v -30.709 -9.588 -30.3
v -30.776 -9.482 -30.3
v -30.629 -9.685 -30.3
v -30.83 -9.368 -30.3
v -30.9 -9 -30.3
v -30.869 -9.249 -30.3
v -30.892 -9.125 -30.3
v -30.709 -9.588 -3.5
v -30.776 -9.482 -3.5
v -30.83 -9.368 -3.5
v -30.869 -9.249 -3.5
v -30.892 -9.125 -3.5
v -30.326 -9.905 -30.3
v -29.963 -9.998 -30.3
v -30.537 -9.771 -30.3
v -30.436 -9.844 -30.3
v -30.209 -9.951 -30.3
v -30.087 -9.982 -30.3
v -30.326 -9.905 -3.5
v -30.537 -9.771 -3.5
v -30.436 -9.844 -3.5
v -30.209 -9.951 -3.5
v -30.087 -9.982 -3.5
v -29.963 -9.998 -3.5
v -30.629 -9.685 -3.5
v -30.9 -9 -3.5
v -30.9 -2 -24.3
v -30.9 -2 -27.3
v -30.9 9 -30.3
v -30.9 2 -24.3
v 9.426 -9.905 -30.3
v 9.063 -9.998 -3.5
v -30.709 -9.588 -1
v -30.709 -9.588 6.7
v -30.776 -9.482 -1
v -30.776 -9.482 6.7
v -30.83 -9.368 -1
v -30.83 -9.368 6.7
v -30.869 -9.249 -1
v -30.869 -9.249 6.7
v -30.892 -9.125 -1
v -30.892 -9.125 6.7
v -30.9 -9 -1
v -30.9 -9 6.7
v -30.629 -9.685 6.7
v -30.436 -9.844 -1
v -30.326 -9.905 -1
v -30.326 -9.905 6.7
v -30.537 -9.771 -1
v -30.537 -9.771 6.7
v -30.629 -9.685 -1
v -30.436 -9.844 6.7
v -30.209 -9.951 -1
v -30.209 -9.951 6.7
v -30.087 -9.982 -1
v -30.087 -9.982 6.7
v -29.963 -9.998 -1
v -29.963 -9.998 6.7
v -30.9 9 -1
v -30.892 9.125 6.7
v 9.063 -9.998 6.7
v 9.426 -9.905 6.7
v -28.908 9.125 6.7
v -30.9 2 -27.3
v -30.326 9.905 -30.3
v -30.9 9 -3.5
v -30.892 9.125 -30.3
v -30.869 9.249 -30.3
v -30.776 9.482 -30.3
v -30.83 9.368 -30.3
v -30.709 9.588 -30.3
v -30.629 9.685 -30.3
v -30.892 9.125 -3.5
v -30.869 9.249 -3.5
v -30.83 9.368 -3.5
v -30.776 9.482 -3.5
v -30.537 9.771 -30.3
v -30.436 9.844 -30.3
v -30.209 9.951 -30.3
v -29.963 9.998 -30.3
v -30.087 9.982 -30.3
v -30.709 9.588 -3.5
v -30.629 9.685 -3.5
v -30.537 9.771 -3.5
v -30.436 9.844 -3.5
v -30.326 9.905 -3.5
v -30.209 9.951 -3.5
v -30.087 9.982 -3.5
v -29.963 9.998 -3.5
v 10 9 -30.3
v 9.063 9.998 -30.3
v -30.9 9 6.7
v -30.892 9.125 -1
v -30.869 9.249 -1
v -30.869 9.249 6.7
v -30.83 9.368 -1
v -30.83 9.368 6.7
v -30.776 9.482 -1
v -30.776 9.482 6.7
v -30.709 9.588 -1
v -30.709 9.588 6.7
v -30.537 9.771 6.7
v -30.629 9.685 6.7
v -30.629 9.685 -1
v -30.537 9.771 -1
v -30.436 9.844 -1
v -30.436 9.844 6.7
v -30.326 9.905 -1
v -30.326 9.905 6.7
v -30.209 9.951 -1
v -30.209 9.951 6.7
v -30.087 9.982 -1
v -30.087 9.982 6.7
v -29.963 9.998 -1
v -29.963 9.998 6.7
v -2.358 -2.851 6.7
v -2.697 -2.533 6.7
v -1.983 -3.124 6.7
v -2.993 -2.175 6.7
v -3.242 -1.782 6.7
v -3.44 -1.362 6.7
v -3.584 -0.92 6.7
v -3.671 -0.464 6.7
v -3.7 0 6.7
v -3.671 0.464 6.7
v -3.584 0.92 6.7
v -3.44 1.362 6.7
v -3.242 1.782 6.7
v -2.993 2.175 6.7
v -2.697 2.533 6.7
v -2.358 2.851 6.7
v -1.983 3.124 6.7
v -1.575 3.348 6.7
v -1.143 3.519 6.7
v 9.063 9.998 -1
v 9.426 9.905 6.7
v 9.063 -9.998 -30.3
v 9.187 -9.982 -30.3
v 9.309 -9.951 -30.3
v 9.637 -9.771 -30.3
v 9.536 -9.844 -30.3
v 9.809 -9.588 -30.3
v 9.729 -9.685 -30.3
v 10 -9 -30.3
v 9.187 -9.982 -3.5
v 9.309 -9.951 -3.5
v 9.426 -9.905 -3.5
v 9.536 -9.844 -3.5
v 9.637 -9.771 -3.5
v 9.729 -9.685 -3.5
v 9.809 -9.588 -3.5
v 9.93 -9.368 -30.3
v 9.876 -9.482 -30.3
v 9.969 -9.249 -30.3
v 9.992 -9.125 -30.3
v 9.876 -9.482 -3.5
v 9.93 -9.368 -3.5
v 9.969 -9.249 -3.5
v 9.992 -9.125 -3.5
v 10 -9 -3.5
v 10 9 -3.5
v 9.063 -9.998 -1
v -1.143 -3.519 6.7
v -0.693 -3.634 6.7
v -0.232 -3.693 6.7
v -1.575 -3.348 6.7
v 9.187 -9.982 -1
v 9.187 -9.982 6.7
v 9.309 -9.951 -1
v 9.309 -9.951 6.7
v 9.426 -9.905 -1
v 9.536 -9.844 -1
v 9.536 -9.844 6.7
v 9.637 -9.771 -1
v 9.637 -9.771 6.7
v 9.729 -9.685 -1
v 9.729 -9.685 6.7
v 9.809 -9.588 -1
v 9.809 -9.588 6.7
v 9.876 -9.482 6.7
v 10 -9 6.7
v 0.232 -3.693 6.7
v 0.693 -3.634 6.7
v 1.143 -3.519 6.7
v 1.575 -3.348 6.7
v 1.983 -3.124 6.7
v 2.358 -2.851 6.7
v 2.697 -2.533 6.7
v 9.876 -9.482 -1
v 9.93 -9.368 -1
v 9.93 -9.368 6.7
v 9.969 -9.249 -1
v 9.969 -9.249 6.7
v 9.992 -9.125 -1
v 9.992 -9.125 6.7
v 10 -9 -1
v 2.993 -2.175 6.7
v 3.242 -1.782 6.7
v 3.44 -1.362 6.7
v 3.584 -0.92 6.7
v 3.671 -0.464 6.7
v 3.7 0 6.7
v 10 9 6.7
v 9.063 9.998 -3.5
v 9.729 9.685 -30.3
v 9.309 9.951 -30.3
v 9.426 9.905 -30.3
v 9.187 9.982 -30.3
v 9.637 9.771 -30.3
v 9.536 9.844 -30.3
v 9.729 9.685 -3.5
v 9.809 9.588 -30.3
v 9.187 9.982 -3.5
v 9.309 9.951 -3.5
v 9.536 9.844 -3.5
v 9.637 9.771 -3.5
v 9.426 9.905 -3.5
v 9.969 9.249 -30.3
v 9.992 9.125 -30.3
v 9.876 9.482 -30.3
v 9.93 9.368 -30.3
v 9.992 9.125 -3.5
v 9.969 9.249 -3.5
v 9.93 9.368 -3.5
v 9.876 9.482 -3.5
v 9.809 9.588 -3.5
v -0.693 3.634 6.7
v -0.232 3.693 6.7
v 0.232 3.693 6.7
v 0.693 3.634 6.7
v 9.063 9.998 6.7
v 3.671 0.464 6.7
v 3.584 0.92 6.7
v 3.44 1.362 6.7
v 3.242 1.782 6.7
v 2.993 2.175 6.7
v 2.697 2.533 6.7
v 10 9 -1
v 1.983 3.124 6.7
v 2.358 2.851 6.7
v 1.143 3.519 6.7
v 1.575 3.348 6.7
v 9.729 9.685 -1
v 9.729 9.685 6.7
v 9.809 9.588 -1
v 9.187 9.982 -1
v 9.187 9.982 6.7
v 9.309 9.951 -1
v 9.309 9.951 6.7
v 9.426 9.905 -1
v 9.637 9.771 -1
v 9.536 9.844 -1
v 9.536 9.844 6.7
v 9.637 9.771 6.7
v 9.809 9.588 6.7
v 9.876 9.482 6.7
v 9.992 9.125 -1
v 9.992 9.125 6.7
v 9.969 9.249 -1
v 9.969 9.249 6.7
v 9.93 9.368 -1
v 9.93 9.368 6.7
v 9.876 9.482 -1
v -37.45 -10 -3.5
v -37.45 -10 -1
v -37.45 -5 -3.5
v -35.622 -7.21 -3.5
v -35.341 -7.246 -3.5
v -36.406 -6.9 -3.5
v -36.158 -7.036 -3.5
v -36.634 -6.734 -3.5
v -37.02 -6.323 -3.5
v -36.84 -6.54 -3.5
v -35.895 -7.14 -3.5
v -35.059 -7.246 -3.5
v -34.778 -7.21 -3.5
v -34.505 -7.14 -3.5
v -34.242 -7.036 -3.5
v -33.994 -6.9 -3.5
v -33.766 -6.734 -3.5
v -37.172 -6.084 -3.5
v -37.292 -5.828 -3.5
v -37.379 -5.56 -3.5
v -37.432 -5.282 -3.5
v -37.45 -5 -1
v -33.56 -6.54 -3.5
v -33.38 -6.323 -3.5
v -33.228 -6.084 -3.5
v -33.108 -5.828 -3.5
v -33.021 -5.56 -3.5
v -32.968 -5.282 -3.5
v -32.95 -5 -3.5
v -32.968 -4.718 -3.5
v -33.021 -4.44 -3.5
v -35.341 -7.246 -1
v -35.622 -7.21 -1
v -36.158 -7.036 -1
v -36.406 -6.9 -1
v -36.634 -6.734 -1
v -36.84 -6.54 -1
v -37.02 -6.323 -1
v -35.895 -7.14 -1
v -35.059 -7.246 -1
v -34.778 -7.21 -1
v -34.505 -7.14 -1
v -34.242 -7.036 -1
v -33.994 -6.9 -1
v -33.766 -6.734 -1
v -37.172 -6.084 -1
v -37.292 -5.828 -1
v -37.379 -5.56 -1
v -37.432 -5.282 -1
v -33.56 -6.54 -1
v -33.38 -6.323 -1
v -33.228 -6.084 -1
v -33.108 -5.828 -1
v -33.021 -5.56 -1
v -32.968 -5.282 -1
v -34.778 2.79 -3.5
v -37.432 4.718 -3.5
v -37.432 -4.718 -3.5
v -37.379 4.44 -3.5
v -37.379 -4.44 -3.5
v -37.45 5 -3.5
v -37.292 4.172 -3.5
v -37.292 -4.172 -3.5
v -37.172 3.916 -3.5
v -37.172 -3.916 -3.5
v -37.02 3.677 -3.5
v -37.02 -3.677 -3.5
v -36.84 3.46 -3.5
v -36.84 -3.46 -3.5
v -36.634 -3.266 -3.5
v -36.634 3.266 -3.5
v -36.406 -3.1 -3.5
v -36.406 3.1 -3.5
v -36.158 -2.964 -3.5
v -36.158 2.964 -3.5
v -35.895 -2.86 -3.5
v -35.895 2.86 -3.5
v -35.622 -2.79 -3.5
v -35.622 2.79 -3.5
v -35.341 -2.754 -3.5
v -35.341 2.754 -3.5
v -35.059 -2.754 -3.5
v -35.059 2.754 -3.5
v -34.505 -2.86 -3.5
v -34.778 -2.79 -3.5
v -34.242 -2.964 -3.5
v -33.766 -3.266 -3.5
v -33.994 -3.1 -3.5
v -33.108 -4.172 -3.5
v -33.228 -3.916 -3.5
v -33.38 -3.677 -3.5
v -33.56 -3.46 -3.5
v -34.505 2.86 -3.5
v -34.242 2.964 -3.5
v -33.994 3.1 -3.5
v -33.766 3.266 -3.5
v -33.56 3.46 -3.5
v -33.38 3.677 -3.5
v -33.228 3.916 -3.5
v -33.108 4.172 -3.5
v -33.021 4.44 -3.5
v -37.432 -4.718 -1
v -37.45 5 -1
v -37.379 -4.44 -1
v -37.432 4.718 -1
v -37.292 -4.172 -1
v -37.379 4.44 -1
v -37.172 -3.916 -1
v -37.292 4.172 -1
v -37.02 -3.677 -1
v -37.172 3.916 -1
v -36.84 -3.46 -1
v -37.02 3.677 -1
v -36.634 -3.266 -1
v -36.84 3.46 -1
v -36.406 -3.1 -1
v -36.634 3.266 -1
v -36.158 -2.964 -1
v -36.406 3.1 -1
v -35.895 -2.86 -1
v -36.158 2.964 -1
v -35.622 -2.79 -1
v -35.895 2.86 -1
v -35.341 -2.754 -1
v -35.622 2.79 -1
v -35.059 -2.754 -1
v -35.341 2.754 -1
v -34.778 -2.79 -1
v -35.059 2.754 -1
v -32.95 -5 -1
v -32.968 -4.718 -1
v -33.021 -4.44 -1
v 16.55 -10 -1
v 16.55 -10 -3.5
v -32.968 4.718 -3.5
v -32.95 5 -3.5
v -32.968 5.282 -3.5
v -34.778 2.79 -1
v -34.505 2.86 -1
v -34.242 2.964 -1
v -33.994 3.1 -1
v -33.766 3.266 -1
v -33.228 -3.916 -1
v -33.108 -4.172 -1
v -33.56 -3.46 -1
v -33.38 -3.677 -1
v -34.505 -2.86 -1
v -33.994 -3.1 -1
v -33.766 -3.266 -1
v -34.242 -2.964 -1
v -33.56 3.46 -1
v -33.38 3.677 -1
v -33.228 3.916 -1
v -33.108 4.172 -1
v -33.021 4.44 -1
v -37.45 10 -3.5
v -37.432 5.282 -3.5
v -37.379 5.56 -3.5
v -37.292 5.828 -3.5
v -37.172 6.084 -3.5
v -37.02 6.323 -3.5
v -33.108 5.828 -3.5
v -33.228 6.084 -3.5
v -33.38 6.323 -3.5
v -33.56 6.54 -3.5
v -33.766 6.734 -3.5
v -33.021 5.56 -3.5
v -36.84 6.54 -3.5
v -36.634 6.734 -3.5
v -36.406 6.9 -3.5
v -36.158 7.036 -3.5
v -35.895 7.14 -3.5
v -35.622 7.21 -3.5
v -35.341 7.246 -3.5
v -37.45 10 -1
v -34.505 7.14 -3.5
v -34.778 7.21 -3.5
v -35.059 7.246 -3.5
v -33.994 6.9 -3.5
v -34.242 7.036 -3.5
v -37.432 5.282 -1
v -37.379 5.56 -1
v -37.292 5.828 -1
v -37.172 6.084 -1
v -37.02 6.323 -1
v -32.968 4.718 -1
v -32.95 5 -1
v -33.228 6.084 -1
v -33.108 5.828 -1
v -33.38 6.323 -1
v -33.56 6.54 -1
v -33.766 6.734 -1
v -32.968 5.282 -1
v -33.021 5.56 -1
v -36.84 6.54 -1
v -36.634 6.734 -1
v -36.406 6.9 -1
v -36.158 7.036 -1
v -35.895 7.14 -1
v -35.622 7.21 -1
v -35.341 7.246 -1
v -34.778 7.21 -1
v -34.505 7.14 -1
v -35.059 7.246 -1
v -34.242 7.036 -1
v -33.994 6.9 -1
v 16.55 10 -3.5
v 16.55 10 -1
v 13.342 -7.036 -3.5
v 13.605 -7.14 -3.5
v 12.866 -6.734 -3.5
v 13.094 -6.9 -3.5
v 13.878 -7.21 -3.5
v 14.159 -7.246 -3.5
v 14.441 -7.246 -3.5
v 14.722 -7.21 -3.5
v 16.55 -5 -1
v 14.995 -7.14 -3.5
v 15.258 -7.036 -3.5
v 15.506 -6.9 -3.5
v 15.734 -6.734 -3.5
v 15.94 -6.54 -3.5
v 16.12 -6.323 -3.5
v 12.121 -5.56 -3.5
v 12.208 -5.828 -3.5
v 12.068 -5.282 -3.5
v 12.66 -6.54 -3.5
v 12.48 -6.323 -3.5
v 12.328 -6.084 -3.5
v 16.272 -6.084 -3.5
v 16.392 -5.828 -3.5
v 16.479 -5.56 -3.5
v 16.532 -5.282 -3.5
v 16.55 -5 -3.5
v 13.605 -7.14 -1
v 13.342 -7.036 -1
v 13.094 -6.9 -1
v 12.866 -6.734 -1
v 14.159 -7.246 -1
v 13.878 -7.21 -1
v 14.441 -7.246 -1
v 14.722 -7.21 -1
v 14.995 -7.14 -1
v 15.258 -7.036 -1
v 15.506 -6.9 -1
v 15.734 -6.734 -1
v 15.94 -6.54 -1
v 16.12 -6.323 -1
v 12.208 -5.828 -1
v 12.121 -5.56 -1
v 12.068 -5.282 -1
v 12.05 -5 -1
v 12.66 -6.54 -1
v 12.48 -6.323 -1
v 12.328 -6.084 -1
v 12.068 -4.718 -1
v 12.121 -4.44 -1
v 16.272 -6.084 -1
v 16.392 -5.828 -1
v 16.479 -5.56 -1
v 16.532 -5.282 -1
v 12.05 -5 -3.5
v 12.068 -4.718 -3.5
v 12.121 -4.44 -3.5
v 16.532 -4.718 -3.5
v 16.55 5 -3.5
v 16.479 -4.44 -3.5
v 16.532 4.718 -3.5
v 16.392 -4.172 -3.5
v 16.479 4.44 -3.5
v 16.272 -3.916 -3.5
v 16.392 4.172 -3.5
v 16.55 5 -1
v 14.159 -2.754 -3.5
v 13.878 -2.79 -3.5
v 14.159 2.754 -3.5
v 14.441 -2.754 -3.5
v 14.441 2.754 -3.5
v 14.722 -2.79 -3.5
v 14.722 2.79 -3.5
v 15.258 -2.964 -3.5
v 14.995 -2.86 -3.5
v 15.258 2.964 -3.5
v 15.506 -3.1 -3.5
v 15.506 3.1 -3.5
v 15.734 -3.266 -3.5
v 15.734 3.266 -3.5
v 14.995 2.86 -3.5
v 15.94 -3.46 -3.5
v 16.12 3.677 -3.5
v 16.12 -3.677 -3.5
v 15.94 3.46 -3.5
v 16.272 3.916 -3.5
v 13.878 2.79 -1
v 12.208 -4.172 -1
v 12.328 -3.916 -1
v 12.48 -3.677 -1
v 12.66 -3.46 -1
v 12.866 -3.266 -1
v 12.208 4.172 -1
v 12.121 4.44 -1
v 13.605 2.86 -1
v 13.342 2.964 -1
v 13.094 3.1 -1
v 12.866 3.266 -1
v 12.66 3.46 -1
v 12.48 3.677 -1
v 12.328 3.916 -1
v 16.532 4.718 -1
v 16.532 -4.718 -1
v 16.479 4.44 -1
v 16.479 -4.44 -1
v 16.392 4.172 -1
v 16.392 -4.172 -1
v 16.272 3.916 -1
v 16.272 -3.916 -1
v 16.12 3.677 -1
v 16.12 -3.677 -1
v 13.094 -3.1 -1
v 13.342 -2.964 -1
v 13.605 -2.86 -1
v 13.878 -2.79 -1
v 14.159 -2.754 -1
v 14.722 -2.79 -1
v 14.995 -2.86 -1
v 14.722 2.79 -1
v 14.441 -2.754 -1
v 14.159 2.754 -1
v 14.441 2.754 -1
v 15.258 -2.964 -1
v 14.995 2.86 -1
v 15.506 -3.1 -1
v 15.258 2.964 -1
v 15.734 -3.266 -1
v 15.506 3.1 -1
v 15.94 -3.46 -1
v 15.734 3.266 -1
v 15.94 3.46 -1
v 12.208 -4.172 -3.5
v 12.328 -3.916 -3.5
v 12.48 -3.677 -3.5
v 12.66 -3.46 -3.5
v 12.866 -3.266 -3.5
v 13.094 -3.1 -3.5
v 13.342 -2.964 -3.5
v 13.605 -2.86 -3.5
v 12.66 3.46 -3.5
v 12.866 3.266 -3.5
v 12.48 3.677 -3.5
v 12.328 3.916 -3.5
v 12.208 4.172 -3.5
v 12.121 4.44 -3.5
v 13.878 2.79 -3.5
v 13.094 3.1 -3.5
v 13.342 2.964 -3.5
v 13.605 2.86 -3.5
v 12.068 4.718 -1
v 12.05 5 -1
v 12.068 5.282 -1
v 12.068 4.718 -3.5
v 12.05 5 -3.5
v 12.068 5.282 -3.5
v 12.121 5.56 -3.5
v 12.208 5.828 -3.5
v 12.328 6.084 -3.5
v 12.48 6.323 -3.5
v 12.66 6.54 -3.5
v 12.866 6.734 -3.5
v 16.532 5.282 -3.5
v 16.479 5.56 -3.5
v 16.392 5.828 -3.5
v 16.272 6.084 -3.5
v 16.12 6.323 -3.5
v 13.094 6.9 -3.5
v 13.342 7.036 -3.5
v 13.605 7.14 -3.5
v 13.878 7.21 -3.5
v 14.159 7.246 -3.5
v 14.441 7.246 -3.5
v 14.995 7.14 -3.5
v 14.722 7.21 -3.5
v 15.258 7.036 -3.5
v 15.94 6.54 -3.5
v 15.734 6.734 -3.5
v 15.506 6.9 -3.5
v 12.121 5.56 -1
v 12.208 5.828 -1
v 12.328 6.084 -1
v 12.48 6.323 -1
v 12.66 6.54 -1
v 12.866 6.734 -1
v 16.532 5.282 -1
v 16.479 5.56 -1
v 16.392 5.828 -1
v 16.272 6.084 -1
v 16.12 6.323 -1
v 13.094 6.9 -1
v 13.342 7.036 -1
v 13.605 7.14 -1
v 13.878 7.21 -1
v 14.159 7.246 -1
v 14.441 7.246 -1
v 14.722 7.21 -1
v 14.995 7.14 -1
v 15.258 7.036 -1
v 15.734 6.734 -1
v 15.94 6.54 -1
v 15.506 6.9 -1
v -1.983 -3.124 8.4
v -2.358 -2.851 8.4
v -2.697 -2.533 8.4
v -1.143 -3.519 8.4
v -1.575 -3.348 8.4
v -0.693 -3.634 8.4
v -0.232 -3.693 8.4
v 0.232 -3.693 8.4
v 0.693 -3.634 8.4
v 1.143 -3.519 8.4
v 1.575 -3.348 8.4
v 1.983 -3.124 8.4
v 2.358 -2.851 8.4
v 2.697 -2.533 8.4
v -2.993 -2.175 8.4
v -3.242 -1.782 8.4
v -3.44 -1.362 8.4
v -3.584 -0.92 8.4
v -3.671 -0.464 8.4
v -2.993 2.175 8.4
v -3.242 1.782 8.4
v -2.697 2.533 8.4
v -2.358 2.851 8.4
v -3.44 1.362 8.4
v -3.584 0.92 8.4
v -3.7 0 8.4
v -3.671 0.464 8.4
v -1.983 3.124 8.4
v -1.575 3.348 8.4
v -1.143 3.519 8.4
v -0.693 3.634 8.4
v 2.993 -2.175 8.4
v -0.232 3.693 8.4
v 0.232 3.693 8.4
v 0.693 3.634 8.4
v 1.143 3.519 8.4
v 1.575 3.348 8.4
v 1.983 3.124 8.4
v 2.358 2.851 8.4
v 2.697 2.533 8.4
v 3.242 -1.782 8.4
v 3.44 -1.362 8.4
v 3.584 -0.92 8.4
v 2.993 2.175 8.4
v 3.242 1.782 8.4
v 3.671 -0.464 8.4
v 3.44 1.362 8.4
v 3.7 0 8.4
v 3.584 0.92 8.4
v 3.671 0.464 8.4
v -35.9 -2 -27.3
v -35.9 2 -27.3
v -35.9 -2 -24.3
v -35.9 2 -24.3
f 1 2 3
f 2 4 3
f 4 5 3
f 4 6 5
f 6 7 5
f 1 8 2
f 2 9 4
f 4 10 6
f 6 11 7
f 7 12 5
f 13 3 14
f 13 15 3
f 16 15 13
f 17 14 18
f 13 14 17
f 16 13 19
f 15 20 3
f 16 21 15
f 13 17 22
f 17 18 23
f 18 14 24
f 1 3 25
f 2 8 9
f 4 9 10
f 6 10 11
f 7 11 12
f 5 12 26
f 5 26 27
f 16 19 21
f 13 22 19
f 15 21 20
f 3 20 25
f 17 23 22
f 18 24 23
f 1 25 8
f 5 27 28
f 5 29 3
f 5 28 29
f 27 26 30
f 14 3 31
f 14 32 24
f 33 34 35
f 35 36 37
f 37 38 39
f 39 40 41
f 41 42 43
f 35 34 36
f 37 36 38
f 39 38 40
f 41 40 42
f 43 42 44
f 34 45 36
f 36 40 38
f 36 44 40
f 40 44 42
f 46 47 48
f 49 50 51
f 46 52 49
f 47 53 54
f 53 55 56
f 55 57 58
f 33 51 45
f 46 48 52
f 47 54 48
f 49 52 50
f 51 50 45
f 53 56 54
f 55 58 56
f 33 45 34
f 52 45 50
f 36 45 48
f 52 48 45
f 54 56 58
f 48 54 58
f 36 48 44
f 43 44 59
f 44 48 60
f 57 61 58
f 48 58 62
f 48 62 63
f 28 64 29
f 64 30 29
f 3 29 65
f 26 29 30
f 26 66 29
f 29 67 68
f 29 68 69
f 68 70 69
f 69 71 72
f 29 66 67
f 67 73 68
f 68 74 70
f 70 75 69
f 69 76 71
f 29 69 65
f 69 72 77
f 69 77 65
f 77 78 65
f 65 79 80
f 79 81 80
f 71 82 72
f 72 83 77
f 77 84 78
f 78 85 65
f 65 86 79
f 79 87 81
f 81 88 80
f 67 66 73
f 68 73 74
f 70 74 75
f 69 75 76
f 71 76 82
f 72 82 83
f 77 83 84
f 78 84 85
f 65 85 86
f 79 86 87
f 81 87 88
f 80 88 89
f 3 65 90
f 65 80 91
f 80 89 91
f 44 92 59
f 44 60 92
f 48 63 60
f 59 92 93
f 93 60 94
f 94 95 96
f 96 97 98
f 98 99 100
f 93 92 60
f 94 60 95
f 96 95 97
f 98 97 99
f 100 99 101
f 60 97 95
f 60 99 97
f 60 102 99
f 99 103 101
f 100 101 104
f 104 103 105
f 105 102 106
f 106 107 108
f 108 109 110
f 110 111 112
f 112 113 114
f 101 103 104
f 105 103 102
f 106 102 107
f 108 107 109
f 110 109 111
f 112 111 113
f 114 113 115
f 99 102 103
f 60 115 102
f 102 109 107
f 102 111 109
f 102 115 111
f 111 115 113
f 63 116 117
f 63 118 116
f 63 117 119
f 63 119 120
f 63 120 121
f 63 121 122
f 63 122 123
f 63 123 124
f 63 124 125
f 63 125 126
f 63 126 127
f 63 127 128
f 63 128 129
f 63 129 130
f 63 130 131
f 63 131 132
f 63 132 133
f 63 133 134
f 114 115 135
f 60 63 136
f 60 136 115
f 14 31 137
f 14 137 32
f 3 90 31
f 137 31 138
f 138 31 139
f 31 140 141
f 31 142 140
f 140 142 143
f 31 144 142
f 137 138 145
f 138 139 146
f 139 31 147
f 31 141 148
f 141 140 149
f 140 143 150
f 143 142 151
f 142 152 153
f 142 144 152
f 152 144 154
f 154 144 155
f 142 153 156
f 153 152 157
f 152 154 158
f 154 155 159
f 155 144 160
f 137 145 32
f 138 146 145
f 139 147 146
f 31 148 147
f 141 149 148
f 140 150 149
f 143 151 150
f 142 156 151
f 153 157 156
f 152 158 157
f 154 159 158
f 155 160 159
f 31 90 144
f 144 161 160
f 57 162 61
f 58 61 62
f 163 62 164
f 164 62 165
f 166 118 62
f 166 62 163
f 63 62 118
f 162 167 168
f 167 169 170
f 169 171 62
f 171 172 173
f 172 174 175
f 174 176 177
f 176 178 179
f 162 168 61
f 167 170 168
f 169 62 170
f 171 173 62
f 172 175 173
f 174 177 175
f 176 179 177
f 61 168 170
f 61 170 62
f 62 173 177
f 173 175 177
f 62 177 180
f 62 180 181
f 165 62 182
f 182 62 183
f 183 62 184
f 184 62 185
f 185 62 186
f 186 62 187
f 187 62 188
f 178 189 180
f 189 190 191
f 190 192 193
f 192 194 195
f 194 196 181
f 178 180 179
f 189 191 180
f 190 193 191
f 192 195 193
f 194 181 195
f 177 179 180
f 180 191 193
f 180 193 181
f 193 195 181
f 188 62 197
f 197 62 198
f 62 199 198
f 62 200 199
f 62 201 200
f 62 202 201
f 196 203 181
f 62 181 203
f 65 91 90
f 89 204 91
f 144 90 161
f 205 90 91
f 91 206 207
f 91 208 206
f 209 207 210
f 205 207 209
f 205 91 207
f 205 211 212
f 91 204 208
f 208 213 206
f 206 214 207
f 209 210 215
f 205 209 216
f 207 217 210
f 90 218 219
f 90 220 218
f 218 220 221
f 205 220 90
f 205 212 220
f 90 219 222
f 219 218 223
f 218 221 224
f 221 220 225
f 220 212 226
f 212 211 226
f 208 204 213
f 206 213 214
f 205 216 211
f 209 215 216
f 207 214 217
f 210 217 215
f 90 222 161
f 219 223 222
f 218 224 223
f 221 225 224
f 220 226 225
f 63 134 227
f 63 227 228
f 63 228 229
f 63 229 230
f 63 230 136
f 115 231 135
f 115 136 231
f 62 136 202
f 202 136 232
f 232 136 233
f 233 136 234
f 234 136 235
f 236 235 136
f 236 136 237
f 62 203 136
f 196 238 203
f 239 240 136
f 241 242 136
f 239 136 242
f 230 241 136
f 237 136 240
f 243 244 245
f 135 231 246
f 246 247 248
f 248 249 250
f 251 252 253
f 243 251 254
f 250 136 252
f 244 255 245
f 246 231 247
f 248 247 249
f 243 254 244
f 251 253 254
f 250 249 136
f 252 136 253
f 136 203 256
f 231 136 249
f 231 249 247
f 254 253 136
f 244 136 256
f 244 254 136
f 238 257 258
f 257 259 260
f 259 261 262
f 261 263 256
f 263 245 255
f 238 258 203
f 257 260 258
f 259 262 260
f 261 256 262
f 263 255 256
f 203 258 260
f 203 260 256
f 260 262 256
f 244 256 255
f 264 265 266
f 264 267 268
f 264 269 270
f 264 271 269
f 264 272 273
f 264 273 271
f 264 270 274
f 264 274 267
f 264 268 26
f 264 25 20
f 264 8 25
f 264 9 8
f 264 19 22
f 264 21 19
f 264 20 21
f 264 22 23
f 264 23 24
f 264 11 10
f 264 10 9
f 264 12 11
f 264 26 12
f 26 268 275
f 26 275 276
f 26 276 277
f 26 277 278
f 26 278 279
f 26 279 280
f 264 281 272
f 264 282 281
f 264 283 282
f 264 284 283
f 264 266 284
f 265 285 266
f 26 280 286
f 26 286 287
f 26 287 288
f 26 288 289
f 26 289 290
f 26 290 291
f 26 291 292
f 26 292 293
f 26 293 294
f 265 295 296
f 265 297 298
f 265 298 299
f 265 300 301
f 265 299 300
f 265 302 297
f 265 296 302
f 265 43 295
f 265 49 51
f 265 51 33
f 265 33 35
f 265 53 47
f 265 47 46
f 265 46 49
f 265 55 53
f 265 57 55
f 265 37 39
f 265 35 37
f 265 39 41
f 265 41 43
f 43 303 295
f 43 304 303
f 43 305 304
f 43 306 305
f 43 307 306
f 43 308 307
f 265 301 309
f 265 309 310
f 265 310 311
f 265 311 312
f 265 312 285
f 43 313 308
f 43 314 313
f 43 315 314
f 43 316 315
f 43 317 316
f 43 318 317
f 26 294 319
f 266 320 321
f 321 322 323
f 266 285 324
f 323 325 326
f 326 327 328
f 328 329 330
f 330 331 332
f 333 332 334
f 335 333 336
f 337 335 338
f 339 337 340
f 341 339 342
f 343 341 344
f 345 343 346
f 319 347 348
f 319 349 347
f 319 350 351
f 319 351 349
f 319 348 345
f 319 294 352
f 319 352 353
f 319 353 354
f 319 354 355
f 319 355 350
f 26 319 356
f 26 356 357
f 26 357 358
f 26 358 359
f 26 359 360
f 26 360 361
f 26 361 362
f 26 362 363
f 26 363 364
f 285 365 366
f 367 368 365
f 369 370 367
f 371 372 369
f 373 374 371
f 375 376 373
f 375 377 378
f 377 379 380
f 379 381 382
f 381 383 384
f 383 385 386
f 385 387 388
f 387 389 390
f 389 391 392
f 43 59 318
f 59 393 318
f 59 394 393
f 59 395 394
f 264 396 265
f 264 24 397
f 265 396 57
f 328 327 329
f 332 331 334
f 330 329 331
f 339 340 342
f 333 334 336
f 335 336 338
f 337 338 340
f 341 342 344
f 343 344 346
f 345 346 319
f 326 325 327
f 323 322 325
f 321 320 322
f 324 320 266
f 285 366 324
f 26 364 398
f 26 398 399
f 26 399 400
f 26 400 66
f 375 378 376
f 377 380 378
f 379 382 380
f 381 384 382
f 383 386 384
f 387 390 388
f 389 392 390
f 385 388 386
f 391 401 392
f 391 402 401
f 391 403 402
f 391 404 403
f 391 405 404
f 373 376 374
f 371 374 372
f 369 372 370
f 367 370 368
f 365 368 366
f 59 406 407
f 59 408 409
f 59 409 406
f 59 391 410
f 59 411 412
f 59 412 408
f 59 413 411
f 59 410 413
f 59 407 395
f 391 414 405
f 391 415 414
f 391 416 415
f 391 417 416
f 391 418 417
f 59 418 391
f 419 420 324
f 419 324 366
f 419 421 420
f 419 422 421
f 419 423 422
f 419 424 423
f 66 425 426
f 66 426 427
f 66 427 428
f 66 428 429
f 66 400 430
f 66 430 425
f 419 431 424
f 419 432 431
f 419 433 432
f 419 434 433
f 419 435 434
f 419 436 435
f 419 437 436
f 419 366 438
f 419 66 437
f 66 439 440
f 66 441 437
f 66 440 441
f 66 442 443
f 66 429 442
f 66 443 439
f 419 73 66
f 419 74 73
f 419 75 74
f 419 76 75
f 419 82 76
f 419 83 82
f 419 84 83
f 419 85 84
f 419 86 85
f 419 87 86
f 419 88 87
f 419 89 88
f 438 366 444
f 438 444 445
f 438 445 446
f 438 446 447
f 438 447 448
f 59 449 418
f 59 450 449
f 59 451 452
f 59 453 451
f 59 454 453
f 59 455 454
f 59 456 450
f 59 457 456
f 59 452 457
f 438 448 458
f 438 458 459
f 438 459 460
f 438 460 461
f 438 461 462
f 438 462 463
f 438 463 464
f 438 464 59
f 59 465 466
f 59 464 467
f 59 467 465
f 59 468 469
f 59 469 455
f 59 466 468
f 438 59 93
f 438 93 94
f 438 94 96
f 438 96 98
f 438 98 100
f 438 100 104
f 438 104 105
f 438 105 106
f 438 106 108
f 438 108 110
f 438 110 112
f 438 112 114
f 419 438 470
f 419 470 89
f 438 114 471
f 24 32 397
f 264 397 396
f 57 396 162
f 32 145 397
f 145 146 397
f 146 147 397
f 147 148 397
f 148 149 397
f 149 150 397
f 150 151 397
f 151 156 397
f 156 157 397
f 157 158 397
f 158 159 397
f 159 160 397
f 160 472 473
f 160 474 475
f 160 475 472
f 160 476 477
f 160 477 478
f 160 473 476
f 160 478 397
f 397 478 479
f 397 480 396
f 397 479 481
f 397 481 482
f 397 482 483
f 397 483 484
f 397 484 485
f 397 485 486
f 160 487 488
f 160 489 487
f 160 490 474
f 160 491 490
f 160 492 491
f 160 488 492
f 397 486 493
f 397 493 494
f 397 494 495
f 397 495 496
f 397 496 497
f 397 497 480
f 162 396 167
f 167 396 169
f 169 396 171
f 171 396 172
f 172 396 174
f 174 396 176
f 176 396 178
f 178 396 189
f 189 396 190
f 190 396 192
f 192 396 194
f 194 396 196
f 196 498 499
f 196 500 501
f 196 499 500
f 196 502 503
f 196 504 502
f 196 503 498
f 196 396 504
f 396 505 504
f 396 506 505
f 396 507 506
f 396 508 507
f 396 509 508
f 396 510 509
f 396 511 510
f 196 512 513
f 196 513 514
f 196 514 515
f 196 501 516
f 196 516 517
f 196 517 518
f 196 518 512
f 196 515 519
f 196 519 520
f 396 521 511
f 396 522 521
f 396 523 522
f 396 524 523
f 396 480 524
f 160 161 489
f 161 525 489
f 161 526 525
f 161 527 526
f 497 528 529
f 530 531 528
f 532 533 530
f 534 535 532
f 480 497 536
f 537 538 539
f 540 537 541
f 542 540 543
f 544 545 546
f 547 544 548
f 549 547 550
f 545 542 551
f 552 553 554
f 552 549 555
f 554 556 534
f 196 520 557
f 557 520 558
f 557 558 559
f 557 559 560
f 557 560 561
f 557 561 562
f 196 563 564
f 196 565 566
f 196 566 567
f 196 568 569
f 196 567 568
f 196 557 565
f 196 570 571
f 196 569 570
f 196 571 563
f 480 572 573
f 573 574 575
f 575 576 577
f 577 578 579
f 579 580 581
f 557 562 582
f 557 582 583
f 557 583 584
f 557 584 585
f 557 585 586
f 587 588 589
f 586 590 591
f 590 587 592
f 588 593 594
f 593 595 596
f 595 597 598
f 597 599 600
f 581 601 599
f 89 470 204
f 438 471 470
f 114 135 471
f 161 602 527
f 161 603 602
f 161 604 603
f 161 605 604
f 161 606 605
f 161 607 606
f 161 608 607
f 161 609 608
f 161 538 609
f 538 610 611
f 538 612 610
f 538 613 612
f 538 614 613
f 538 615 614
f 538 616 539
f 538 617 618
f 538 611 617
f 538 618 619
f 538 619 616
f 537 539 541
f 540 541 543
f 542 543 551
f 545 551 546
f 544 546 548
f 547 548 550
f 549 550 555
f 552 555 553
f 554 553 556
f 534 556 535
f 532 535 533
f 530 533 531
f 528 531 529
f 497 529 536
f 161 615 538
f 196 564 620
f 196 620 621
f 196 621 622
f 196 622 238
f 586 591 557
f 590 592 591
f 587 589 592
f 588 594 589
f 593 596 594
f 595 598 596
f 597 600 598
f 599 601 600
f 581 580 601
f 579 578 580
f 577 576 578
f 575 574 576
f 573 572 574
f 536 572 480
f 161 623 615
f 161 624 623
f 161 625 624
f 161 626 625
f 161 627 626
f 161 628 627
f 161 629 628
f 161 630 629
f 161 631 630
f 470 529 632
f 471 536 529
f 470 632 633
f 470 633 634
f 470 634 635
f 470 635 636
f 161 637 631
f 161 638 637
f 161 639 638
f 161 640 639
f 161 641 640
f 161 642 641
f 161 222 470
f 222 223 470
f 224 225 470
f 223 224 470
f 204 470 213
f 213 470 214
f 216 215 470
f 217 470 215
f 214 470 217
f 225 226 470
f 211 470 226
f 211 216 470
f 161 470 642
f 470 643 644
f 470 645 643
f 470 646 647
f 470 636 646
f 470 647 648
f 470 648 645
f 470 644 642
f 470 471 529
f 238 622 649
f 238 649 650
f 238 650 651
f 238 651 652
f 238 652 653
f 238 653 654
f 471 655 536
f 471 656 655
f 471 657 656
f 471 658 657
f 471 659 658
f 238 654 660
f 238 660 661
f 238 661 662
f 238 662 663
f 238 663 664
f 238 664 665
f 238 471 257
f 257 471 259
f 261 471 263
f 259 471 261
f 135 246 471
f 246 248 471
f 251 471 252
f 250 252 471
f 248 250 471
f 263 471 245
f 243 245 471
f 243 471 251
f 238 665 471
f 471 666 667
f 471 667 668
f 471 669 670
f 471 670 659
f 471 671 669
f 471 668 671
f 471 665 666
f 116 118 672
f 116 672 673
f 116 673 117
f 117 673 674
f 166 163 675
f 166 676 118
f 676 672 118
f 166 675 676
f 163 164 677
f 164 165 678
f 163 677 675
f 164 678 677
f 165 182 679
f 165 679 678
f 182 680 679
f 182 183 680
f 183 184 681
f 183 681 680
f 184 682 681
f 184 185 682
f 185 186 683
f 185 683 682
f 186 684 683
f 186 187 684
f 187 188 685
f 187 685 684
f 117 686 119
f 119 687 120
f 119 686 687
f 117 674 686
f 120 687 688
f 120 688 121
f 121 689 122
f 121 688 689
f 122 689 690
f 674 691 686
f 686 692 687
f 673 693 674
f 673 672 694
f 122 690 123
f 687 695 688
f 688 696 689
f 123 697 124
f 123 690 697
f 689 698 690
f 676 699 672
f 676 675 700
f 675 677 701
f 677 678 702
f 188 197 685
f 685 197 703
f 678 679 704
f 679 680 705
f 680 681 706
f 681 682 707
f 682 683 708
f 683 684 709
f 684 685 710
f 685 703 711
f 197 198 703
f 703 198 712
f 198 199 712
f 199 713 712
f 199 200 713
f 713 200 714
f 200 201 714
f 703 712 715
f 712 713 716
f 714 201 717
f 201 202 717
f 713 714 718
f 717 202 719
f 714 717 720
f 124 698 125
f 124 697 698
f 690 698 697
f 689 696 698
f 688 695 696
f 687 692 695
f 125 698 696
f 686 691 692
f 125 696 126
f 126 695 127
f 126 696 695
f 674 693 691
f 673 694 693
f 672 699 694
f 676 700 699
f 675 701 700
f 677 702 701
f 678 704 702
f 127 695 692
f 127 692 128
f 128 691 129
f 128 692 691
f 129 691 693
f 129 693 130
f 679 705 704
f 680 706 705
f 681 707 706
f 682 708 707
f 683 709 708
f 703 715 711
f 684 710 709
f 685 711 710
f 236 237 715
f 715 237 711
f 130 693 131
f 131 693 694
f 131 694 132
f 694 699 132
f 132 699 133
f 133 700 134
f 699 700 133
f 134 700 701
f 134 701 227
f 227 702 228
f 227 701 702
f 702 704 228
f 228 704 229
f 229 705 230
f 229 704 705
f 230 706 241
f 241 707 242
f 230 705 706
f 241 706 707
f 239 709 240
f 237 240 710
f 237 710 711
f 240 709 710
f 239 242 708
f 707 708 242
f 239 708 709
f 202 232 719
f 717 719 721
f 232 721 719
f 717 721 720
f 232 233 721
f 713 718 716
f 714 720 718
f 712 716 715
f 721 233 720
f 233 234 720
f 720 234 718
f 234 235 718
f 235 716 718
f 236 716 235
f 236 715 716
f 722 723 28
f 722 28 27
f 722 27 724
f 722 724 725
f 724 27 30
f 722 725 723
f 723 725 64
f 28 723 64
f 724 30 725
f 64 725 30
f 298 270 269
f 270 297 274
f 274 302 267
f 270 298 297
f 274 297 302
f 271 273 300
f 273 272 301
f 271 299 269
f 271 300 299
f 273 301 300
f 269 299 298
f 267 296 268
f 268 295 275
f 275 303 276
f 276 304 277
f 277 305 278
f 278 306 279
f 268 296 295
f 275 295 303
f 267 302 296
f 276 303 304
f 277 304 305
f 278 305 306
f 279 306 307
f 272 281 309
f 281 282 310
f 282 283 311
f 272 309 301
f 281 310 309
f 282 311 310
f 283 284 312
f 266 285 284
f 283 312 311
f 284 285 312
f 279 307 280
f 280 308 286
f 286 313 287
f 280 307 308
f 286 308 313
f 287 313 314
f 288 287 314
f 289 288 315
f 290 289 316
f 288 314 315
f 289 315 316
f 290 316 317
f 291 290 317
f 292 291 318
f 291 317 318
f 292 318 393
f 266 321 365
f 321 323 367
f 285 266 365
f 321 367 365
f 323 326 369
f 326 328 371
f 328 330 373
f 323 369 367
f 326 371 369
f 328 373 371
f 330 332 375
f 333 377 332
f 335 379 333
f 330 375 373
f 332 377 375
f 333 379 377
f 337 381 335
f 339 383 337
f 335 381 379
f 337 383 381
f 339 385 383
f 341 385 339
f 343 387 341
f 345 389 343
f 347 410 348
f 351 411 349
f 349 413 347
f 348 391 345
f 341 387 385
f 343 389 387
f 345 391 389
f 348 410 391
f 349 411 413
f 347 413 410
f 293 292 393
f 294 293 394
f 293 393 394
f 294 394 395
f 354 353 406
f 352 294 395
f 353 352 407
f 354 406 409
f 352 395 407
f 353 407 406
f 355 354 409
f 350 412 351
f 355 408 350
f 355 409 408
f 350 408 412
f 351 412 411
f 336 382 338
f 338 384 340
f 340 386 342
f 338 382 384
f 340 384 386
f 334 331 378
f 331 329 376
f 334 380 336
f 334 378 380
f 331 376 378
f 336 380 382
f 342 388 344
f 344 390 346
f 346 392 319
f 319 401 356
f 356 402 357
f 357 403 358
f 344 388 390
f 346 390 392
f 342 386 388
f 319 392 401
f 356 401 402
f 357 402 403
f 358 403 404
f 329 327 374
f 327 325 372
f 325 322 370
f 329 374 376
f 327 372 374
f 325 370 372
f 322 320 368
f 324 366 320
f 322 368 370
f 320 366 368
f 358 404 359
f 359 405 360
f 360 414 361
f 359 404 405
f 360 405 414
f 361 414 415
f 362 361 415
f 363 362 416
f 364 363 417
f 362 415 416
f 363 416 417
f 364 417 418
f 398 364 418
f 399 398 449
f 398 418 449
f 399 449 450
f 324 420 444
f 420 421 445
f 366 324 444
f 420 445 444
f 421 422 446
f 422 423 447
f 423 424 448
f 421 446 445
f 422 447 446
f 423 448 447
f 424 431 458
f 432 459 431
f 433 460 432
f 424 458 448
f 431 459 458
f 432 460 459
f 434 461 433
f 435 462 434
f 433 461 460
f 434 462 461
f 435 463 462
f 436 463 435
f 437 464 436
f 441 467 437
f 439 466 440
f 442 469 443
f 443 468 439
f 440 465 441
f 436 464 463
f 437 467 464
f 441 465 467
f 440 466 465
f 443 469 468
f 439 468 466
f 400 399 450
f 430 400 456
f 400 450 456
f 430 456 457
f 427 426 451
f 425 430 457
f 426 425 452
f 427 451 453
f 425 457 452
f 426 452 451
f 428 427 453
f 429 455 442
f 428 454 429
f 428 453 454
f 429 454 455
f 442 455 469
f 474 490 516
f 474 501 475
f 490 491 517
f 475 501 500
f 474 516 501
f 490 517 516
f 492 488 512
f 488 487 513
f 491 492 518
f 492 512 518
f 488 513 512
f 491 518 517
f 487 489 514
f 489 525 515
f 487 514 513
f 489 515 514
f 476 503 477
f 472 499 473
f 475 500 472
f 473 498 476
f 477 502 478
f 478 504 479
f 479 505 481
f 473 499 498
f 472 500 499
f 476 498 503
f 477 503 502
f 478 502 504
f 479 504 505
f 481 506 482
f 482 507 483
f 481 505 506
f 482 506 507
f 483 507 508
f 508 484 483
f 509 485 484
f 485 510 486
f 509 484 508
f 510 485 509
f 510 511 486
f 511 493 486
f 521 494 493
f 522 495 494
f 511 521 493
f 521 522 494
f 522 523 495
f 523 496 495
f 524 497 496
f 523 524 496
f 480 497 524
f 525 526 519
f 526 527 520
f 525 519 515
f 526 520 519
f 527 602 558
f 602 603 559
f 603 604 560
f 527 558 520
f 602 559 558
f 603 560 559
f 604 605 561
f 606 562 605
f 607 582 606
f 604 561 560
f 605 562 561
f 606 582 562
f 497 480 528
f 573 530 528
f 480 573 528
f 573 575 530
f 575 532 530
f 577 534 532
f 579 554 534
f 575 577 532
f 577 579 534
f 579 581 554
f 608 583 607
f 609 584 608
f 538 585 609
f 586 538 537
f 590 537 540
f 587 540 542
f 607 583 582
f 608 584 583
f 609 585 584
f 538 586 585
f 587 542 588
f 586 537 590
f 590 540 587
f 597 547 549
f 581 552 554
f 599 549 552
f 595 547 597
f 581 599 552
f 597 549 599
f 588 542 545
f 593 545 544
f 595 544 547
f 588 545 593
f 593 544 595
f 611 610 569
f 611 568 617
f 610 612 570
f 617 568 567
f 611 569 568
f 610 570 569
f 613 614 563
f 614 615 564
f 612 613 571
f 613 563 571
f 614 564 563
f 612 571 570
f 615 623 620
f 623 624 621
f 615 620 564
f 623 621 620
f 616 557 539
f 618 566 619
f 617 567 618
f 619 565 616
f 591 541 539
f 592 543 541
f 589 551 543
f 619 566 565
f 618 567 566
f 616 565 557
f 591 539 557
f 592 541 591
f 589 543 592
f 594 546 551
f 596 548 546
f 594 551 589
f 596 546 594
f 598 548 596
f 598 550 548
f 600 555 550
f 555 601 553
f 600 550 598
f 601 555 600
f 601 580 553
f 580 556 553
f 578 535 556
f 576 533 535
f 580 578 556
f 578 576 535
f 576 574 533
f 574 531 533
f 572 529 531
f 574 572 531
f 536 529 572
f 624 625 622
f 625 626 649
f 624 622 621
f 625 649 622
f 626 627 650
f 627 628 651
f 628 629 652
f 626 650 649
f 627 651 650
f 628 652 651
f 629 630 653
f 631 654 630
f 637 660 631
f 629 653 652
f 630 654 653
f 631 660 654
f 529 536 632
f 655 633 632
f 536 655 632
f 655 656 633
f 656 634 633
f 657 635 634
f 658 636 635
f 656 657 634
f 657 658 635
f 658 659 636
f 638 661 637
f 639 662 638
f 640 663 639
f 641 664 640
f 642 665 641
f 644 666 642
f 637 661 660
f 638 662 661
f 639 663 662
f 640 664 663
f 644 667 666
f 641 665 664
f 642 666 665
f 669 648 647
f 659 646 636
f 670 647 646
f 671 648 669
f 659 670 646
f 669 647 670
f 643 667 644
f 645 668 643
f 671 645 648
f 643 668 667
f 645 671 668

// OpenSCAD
$fn = 50;

difference() {
	union() {
		translate(v = [-10.45, 0, -30.3]) {
			hull() {
				translate(v = [-19.45, 9.0, 0]) {
					cylinder(h = 37.0, r = 1);
				}
				translate(v = [19.45, 9.0, 0]) {
					cylinder(h = 37.0, r = 1);
				}
				translate(v = [-19.45, -9.0, 0]) {
					cylinder(h = 37.0, r = 1);
				}
				translate(v = [19.45, -9.0, 0]) {
					cylinder(h = 37.0, r = 1);
				}
			}
		}
		translate(v = [-37.45, -10.0, -3.5]) {
			cube(size = [54.0, 20.0, 2.5]);
		}
		translate(v = [0, 0, 6.699999999999999]) {
			cylinder(h = 1.7000000000000002, r = 3.7);
		}
		translate(v = [-35.9, -2.0, -27.3]) {
			cube(size = [6, 4, 3]);
		}
	}
	union() {
		translate(v = [-35.2, -5.0, -5]) {
			cylinder(h = 5, r = 2.25);
		}
		translate(v = [-35.2, 5.0, -5]) {
			cylinder(h = 5, r = 2.25);
		}
		translate(v = [14.3, -5.0, -5]) {
			cylinder(h = 5, r = 2.25);
		}
		translate(v = [14.3, 5.0, -5]) {
			cylinder(h = 5, r = 2.25);
		}
	}
}
